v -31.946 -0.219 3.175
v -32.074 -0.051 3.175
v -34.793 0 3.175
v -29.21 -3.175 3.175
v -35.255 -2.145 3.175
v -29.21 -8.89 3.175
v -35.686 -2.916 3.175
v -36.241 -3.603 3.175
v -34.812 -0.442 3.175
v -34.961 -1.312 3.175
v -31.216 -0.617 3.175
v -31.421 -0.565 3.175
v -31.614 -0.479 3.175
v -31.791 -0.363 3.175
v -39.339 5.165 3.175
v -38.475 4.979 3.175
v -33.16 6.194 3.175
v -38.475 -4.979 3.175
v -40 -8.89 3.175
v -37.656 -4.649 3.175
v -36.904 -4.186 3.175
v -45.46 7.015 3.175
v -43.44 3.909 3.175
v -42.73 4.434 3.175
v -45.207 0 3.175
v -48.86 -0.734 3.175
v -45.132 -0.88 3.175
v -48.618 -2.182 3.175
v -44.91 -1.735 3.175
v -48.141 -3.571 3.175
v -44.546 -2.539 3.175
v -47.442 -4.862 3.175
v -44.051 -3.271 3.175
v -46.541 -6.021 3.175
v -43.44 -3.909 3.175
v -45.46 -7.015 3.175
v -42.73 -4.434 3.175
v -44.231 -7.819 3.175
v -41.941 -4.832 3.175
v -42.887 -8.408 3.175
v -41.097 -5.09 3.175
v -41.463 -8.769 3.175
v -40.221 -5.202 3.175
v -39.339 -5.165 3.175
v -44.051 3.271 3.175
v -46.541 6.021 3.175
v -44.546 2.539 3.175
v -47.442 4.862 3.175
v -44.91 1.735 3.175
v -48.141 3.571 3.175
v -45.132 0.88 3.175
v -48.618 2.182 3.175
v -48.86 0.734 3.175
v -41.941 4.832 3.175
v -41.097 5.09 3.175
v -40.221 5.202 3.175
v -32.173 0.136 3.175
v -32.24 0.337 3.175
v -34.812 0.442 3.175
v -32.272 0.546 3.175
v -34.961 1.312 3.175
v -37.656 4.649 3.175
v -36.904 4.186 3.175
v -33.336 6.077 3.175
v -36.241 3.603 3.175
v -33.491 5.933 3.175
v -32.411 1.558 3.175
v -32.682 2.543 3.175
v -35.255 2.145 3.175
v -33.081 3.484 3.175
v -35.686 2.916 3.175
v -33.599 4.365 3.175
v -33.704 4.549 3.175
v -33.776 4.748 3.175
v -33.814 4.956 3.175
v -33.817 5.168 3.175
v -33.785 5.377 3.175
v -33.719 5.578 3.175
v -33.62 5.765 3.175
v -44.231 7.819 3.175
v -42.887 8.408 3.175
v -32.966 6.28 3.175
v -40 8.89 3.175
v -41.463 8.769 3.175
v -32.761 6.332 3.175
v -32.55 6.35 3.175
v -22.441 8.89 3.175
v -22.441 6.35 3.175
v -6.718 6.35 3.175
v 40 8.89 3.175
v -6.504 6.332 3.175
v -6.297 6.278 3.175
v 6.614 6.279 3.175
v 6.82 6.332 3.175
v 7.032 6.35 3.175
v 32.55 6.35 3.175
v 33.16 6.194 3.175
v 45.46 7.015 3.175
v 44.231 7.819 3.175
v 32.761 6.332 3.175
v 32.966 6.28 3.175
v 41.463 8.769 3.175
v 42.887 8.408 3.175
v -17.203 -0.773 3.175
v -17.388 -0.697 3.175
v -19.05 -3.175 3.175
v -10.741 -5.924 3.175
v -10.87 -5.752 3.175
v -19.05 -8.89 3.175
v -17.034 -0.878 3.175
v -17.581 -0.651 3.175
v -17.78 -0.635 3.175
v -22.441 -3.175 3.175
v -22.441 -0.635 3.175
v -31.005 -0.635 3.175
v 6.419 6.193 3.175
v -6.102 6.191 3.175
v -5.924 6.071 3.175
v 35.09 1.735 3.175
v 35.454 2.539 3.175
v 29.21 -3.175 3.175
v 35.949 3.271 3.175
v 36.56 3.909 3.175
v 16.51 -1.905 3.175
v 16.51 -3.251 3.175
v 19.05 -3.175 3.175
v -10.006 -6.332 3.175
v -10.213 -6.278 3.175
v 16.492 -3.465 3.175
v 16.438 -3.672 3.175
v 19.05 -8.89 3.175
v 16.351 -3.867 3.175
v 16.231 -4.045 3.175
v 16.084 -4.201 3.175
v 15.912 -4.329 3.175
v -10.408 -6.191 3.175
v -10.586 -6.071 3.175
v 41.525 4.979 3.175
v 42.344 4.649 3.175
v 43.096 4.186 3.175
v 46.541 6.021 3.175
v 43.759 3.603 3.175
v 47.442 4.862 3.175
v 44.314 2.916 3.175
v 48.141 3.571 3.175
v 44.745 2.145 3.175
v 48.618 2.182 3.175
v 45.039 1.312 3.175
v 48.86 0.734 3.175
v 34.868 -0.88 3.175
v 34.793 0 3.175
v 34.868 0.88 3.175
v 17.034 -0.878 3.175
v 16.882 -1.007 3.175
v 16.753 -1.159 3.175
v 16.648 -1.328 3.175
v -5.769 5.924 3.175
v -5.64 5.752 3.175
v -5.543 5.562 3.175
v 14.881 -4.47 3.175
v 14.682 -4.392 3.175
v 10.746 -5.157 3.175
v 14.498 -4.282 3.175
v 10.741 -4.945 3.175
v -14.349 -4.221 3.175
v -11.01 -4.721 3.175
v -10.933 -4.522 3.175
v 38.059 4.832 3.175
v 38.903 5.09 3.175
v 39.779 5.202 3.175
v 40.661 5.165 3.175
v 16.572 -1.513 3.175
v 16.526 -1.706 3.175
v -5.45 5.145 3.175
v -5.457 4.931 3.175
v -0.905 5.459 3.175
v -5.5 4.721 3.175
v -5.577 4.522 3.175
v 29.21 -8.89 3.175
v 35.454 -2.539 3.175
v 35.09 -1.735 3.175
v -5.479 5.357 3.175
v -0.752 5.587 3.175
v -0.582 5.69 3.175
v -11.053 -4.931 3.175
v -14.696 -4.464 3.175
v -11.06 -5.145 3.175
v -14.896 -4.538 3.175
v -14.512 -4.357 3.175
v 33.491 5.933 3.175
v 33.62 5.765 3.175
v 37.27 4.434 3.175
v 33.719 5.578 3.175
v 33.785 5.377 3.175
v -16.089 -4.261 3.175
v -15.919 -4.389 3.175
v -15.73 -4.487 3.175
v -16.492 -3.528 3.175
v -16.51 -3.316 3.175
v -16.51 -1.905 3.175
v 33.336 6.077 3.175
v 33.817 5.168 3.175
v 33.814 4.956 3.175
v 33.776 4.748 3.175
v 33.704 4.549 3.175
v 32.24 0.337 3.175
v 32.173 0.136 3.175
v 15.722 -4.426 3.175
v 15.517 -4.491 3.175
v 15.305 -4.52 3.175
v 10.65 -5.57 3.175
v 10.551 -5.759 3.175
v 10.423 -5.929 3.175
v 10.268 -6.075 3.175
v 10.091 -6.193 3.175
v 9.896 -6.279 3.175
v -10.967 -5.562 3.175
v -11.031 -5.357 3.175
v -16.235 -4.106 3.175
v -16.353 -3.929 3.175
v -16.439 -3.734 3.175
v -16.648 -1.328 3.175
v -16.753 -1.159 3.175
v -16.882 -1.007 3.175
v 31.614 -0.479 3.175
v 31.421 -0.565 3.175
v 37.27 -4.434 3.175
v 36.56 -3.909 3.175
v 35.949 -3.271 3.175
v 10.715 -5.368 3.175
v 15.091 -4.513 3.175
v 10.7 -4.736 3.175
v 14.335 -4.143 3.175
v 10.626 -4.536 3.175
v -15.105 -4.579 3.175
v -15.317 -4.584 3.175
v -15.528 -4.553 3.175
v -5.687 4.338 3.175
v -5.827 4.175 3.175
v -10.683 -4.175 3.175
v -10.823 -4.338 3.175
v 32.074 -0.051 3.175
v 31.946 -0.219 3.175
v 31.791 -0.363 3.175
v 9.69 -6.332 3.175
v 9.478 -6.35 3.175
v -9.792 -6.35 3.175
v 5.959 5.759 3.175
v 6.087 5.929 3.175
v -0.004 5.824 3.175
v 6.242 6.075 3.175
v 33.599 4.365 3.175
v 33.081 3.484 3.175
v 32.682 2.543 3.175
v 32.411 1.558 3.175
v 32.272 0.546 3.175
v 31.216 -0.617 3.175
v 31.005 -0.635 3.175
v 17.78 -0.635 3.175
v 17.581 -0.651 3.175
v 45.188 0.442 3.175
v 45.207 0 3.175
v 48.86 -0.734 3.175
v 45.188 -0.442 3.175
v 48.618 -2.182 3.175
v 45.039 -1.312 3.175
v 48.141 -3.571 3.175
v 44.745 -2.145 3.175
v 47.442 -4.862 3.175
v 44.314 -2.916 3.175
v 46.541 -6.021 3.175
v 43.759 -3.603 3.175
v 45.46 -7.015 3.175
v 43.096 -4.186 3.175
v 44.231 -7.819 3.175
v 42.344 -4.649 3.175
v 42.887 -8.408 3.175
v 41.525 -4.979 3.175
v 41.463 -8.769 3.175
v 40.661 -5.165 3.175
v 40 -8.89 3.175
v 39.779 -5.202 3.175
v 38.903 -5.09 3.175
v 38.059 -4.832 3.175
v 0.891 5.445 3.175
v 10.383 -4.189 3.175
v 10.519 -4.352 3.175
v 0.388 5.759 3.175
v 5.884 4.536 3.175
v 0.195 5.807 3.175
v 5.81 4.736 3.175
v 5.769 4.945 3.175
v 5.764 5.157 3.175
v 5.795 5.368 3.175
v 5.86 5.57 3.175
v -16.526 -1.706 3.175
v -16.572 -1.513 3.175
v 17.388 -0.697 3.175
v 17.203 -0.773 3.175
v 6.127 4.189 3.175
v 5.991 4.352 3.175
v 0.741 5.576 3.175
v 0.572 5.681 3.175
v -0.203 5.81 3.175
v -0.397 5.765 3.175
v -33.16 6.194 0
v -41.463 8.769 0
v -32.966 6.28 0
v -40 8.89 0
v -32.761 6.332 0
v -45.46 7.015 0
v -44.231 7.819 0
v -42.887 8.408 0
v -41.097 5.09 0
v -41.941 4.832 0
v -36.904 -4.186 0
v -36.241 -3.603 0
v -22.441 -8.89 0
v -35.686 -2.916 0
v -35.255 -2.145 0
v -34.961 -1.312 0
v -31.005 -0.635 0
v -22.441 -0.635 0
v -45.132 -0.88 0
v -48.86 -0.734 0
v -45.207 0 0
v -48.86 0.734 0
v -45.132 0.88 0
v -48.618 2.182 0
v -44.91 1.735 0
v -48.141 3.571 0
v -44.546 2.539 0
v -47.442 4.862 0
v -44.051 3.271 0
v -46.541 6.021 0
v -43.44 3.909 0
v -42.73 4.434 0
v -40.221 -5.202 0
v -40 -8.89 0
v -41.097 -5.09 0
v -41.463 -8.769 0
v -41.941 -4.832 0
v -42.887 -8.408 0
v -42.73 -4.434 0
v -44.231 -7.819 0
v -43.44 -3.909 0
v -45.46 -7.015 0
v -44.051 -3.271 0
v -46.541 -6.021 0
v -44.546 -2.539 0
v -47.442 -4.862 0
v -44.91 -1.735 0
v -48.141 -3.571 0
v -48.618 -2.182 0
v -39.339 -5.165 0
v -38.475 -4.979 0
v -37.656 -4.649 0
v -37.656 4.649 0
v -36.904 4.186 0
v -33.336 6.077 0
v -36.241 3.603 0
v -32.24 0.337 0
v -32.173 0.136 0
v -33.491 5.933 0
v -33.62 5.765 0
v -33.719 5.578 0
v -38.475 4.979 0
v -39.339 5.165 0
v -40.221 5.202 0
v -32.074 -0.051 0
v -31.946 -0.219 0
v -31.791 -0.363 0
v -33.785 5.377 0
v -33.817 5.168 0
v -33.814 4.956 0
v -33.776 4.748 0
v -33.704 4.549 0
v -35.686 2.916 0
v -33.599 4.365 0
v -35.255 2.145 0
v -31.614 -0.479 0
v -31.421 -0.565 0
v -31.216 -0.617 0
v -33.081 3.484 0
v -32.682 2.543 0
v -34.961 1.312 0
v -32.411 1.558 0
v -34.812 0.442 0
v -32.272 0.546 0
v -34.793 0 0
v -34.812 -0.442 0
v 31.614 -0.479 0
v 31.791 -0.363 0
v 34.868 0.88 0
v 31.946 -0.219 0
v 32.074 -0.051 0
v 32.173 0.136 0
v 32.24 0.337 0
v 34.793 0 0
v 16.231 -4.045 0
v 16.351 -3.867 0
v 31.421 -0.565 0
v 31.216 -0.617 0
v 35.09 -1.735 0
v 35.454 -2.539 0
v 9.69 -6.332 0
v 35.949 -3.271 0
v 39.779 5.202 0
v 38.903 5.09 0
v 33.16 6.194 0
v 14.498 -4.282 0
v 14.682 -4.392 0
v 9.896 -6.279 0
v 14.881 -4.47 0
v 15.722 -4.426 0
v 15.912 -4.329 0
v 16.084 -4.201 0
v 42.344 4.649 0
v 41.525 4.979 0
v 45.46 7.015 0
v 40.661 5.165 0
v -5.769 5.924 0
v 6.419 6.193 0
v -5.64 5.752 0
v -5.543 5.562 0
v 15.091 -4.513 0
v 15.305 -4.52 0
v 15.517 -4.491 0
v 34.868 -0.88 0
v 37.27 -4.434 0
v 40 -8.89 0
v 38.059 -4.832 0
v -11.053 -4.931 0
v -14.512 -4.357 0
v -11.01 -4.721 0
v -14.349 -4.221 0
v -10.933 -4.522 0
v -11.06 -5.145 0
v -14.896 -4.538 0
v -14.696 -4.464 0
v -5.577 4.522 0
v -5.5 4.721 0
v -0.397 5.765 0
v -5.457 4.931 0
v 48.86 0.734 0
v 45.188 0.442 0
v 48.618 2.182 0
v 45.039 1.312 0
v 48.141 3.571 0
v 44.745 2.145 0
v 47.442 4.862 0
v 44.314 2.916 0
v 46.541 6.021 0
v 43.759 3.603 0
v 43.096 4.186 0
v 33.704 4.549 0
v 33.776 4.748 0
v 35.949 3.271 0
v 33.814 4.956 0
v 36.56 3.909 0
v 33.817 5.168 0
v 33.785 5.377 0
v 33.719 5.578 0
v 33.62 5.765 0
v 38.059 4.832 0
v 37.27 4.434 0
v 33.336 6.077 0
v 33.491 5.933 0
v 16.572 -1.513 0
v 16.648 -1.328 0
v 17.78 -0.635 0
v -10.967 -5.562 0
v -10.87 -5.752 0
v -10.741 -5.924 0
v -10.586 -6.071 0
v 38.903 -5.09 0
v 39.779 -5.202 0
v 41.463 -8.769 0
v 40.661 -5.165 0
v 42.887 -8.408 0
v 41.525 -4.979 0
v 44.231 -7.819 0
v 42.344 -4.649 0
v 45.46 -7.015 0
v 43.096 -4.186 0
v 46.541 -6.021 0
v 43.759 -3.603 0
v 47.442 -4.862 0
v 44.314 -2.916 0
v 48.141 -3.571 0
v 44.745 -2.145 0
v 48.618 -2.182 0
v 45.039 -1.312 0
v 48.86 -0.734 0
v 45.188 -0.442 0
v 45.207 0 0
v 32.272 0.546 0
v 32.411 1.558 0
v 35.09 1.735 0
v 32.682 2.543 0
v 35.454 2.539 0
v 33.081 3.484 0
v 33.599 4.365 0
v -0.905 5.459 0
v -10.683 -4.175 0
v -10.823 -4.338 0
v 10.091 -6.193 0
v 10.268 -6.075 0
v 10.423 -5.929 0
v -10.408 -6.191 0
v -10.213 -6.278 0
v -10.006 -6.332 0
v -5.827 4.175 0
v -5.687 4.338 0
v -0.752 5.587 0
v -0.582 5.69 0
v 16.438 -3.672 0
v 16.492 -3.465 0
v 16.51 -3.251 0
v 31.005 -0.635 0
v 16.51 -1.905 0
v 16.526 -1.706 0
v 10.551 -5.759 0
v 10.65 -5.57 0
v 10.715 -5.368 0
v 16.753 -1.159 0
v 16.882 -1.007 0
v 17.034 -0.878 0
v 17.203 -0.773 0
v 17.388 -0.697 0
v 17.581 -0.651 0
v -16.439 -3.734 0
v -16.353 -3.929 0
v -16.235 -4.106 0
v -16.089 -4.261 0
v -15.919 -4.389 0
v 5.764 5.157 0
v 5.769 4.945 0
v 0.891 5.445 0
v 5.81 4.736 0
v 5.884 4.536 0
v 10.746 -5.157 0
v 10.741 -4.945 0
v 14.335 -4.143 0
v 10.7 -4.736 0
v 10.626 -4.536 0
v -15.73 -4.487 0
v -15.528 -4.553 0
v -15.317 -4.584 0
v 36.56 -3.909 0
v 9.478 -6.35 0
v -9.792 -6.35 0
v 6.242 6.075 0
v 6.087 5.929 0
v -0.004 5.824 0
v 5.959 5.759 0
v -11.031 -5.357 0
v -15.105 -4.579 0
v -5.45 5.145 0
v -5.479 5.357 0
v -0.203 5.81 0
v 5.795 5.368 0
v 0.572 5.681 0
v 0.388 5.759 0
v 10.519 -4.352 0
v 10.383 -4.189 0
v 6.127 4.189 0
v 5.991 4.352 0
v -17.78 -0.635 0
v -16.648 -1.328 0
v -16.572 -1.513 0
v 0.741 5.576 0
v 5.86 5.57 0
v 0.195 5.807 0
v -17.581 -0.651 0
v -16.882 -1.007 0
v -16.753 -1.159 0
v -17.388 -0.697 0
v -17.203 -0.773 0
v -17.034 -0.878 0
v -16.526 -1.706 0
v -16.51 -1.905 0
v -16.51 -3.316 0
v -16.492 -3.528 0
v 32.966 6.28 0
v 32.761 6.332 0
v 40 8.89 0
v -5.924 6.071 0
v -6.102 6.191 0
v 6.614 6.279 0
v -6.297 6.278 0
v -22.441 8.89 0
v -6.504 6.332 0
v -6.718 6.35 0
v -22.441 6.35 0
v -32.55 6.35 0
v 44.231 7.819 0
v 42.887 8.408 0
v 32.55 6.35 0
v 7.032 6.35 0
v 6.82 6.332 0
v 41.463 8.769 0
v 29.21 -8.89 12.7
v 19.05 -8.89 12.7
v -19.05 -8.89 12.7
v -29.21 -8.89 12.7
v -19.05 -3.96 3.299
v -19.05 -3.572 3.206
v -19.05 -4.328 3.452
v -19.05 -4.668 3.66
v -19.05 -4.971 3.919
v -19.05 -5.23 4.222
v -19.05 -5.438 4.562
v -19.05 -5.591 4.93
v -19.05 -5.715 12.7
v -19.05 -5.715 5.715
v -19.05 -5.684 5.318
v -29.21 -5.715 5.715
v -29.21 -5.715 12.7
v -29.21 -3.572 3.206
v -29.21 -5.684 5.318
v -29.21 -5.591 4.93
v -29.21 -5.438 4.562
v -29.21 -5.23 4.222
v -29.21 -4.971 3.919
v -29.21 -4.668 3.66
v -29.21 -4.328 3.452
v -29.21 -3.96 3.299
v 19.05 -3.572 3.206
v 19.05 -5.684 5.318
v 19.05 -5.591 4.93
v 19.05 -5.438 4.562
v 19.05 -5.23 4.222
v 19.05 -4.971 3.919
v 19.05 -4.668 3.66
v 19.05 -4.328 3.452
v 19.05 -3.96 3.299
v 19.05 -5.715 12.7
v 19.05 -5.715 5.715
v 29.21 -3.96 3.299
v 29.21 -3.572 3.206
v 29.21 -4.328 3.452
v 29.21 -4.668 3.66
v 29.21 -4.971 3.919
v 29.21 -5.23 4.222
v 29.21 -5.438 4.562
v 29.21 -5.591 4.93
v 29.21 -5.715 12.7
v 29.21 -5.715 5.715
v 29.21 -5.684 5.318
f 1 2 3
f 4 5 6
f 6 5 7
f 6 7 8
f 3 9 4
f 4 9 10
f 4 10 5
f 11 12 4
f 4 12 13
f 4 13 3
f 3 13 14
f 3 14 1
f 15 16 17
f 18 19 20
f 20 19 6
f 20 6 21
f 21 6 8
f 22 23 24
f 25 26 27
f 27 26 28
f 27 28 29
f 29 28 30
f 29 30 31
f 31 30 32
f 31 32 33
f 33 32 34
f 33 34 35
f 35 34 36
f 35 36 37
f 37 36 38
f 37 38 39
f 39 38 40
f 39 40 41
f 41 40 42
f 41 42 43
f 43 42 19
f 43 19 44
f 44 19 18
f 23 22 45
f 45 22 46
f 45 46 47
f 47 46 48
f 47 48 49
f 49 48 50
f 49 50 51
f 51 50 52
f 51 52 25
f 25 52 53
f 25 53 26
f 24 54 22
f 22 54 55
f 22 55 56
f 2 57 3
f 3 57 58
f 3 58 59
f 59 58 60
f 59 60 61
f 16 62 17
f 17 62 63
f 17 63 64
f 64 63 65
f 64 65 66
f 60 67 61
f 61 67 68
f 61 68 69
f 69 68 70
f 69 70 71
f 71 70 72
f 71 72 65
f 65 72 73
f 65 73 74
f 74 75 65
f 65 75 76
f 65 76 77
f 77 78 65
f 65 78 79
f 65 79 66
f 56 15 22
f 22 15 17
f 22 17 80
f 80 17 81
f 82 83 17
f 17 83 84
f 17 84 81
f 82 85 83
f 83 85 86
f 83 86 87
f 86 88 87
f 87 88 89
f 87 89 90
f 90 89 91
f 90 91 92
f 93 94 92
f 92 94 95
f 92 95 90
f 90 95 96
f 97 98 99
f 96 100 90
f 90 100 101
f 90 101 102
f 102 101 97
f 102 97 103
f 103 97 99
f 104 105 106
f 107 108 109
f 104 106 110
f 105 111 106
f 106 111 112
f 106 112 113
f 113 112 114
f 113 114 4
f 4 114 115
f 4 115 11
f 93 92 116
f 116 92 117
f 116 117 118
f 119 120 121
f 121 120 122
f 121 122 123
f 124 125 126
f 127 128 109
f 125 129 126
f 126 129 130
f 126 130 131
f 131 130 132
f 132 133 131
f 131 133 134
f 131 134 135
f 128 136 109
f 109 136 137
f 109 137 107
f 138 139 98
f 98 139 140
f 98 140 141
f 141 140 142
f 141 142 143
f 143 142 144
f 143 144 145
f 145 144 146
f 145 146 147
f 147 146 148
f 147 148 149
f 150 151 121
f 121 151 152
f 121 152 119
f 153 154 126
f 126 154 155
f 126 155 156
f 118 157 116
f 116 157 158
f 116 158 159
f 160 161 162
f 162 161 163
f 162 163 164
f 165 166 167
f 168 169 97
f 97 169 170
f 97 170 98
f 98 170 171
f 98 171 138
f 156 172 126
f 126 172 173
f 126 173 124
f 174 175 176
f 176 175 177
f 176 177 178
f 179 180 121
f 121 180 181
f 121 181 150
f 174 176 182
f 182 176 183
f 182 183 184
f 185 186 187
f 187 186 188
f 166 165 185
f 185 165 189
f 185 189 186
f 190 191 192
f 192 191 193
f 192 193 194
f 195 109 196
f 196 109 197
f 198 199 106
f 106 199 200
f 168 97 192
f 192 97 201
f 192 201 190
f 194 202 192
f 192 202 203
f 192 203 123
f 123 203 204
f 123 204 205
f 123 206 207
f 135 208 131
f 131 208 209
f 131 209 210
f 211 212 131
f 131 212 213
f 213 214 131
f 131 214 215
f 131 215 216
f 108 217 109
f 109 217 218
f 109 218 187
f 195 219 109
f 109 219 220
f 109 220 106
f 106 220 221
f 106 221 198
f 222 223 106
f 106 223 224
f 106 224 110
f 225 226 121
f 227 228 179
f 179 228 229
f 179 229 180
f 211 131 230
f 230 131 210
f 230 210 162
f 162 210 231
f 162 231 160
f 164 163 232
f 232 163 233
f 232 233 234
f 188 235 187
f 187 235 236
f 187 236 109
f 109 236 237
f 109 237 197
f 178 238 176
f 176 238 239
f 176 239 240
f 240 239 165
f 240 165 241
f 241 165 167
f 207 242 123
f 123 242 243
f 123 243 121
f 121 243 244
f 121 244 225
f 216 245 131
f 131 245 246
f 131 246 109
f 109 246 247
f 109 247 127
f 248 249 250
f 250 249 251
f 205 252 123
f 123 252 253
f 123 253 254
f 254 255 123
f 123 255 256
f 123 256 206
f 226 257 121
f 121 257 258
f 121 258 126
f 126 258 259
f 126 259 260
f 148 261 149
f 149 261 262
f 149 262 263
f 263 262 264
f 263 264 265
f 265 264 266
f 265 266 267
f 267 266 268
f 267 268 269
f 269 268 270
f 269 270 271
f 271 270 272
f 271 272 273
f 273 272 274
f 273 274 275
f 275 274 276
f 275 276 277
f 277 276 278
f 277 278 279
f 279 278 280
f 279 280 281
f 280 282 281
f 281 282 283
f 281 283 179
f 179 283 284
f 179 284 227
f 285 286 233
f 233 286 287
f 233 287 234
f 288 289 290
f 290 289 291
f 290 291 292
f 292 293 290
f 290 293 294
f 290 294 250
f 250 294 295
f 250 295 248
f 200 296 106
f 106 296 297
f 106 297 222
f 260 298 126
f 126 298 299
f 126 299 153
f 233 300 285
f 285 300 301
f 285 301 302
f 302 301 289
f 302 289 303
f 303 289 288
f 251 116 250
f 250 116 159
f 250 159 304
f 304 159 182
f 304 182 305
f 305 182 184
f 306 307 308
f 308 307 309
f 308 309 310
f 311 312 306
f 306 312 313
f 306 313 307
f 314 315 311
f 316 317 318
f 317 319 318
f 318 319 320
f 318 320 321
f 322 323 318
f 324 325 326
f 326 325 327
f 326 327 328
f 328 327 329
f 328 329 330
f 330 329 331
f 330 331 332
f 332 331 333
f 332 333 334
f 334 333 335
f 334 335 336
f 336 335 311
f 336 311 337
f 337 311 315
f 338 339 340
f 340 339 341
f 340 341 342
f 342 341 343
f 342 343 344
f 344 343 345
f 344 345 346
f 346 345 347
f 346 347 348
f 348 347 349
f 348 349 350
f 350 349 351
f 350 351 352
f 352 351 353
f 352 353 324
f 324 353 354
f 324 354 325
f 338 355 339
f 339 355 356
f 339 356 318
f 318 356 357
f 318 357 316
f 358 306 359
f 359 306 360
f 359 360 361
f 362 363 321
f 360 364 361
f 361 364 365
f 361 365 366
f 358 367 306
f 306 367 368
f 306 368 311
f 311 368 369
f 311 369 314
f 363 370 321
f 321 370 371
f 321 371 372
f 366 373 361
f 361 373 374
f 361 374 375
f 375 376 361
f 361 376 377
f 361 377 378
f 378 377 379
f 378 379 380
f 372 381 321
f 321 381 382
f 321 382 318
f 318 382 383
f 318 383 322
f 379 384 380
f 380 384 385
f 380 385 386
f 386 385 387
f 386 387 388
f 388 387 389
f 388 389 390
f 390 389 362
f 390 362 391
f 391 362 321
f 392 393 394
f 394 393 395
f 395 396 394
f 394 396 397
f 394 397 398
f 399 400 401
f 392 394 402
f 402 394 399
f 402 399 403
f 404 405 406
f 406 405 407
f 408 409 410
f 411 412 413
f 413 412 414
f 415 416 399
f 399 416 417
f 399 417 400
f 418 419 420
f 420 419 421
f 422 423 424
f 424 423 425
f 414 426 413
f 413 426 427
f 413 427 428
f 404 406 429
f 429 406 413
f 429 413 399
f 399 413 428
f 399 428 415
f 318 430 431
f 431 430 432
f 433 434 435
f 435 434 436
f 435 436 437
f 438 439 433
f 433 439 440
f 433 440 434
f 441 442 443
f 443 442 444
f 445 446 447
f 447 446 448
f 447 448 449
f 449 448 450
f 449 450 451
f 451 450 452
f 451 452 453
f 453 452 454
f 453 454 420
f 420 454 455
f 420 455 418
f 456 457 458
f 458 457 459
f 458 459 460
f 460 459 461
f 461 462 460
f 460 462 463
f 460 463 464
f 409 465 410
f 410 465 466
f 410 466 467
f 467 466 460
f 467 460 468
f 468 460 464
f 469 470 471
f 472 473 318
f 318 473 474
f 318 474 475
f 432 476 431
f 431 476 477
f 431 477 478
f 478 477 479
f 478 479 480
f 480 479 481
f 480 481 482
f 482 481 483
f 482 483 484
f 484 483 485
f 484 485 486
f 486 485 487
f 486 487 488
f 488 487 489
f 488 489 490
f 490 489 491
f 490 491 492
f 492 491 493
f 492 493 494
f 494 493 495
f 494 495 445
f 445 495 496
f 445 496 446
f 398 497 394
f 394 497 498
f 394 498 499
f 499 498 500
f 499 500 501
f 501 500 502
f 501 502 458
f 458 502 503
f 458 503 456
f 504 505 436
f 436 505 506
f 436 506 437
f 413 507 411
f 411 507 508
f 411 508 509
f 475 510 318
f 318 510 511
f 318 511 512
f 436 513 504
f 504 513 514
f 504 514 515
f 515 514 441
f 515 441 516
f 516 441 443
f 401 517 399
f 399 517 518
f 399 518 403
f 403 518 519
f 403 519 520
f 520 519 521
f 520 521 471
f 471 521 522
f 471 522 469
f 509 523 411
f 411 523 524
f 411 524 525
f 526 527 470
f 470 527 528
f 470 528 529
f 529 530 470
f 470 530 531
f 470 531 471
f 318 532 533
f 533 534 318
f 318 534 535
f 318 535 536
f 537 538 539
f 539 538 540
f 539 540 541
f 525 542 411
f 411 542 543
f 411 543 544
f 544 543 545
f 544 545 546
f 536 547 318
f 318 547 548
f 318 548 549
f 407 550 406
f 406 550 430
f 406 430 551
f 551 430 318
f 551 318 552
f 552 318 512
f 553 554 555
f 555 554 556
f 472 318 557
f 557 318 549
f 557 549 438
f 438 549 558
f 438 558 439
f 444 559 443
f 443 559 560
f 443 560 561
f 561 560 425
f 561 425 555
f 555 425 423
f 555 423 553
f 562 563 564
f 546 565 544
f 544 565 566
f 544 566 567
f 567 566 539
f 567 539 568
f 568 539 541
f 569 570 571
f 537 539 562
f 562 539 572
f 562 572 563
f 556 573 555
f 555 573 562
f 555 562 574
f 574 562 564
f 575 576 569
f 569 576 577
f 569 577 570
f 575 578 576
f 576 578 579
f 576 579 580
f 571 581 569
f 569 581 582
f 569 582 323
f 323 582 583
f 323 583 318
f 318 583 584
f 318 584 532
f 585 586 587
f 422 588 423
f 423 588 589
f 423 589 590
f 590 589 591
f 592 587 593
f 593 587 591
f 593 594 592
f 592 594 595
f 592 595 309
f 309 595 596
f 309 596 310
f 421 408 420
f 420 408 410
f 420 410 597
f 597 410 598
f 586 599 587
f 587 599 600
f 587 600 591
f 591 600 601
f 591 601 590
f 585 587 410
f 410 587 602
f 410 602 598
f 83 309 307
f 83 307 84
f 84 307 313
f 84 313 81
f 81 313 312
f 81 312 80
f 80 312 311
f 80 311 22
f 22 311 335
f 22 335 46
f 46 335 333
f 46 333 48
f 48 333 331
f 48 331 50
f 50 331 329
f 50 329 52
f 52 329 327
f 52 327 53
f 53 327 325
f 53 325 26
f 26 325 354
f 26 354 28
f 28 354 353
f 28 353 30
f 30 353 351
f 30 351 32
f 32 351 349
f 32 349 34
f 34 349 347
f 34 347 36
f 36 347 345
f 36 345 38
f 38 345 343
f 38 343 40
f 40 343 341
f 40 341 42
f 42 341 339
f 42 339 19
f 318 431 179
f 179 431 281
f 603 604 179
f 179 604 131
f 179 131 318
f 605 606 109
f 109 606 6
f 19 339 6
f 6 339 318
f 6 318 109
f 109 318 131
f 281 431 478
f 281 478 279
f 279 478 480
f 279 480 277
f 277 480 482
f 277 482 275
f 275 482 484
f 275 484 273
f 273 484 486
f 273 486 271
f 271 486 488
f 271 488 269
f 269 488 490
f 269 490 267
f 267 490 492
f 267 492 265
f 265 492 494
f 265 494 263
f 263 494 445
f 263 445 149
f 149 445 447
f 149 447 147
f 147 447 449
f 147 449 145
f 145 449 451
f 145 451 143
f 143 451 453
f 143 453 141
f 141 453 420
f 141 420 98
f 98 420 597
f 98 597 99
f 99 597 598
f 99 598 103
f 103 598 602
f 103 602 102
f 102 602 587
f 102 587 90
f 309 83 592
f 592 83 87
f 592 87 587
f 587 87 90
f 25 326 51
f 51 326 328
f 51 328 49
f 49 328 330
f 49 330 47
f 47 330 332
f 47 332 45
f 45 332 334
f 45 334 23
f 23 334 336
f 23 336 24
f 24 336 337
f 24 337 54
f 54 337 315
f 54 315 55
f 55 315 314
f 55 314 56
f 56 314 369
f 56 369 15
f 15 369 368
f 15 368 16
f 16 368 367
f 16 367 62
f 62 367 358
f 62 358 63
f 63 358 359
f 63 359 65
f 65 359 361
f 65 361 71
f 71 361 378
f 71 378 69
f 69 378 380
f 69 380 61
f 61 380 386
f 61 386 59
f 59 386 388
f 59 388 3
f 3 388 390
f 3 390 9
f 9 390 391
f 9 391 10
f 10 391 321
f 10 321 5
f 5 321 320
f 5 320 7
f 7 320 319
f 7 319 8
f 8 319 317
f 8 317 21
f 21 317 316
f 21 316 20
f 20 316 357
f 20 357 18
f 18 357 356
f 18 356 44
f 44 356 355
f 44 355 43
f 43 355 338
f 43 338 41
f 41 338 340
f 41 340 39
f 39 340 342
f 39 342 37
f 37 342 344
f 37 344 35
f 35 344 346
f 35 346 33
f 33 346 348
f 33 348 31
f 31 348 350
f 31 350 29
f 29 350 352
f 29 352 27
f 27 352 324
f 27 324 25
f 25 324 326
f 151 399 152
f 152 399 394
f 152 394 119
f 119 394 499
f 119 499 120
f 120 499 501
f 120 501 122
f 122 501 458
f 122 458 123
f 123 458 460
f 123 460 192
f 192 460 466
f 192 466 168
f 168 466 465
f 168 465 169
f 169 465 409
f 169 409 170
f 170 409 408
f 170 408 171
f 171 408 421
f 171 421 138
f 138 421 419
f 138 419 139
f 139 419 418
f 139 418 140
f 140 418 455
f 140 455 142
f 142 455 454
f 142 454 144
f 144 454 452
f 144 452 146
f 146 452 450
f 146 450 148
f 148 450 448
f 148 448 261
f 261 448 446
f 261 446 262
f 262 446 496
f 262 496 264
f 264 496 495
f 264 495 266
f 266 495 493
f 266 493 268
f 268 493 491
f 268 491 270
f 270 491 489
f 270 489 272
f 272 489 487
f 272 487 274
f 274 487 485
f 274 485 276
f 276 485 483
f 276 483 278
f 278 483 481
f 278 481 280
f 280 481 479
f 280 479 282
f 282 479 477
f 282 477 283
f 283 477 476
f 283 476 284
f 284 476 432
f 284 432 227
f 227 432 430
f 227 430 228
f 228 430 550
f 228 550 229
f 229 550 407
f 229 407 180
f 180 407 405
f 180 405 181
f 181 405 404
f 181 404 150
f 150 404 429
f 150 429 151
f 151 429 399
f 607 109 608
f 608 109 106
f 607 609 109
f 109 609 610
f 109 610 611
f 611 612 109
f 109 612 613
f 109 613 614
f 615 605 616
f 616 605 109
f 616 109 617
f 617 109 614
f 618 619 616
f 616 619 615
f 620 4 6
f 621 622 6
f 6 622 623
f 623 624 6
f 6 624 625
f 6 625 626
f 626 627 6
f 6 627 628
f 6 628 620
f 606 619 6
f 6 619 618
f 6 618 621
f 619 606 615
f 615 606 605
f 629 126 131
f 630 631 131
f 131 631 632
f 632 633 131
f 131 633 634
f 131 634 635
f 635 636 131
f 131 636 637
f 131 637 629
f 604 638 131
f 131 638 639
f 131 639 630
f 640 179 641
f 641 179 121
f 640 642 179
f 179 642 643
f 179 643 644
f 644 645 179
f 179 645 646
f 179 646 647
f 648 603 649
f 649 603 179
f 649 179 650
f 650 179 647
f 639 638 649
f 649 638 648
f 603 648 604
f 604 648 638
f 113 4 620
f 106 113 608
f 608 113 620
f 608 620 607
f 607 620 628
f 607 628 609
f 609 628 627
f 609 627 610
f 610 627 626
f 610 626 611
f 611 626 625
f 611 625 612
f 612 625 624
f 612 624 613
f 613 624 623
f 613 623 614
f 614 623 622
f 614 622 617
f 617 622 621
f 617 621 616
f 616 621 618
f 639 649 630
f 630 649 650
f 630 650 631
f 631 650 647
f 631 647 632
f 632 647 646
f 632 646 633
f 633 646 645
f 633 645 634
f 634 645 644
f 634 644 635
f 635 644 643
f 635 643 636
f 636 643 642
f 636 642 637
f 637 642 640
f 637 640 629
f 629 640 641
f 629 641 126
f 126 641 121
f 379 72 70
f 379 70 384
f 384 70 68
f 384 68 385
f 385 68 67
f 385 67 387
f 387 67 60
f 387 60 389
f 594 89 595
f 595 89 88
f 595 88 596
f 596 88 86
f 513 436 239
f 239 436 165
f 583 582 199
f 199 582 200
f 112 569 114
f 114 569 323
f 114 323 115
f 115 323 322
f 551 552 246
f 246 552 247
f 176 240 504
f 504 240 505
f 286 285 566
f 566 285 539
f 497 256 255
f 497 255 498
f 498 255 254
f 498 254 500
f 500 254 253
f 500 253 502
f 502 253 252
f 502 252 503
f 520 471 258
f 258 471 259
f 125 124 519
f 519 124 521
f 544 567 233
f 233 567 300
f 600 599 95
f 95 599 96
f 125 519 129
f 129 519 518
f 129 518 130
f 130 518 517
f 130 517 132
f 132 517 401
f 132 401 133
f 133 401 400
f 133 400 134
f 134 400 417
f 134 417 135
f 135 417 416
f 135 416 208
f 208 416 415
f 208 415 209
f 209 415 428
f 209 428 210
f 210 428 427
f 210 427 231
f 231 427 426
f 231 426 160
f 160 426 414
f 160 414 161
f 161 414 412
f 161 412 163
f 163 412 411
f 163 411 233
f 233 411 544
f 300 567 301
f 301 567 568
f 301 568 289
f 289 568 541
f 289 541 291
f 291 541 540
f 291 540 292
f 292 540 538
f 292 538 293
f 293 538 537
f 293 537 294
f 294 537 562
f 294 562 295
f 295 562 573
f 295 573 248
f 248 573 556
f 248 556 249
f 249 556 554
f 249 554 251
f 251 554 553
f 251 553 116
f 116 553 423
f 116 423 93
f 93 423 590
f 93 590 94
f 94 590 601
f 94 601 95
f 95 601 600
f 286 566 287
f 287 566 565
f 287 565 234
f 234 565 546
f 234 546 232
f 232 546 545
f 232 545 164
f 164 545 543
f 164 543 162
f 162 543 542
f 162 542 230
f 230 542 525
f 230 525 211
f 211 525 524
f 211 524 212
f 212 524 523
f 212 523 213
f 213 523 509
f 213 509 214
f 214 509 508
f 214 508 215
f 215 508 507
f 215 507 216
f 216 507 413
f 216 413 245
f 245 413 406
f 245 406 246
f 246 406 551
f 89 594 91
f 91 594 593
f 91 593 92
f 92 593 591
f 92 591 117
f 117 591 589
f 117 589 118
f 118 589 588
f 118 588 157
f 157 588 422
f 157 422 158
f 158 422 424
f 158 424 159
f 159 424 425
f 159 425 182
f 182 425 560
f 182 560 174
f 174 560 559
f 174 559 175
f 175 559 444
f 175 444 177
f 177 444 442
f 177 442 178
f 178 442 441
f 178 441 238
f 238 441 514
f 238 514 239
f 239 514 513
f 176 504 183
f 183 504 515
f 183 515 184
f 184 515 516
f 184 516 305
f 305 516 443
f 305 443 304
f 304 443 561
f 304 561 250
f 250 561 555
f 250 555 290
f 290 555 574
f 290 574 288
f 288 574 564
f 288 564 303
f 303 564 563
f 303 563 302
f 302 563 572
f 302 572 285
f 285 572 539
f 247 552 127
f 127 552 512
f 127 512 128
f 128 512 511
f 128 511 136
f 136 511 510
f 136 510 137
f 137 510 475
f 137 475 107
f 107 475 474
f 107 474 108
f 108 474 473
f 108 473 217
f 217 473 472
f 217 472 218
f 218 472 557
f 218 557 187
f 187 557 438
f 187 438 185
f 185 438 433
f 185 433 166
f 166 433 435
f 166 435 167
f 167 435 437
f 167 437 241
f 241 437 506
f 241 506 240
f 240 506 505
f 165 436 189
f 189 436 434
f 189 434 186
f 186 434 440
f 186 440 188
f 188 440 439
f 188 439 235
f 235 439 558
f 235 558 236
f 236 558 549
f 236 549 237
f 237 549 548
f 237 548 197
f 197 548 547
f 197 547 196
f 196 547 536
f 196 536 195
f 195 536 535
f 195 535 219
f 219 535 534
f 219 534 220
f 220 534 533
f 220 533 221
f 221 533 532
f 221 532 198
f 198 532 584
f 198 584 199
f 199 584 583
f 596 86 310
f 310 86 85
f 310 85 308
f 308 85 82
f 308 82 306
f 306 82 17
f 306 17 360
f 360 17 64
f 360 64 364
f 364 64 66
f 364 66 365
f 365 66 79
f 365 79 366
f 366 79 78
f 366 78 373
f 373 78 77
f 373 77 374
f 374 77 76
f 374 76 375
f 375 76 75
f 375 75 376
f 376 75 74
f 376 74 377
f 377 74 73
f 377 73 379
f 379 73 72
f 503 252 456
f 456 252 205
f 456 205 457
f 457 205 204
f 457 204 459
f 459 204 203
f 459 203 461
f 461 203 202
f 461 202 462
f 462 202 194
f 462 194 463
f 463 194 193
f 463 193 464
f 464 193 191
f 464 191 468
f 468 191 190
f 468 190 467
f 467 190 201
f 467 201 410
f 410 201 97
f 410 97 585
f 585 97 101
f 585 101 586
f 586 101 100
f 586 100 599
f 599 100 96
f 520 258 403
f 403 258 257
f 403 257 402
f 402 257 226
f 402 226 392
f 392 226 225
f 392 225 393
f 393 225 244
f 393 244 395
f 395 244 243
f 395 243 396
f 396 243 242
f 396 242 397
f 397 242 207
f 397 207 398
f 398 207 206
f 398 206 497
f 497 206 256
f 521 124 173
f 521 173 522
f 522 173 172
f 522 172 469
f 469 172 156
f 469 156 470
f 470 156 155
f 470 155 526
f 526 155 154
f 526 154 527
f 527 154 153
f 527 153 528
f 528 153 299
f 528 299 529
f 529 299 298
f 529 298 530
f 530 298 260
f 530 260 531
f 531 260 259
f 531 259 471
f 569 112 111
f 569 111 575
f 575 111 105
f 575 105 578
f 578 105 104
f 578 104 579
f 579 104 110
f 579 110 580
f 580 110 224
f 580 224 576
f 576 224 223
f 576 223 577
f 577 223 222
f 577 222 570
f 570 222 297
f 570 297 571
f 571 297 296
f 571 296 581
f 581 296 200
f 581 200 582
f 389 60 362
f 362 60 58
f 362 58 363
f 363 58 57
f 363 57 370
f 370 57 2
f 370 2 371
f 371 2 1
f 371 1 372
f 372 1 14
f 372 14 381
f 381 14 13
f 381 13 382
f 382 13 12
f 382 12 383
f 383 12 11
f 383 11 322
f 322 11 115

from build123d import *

# Parameters (mm, degrees)
SKETCH1_R           = 5.207
BOSS_EXTRUDE1_DEPTH = 3.175
SKETCH2_W           = 10.16
SKETCH2_H           = 3.175
BOSS_EXTRUDE2_DEPTH = 12.7
FILLET1_R           = 2.54
CUT_EXTRUDE1_DEPTH  = 51.596342012
FILLET2_R           = 1.27


with BuildPart() as part:
    # Sketch1 → Boss-Extrude1 (new body)
    with BuildSketch(Plane.XY):
        with BuildLine():
            Line((-40, 8.89), (40, 8.89))
            ThreePointArc((40, 8.89), (48.89, 0), (40, -8.89))
            Line((40, -8.89), (-40, -8.89))
            ThreePointArc((-40, -8.89), (-48.89, 0), (-40, 8.89))
        make_face()
        with Locations((-40, 0)):
            Circle(SKETCH1_R, mode=Mode.SUBTRACT)
        with Locations((40, 0)):
            Circle(SKETCH1_R, mode=Mode.SUBTRACT)
    extrude(amount=BOSS_EXTRUDE1_DEPTH)

    # Sketch2 → Boss-Extrude2 (add)
    with BuildSketch(Plane.XY):
        with Locations((24.13, -7.3025)):
            Rectangle(SKETCH2_W, SKETCH2_H)
        with Locations((-24.13, -7.3025)):
            Rectangle(SKETCH2_W, SKETCH2_H)
    extrude(amount=BOSS_EXTRUDE2_DEPTH)

    # Fillet1
    fillet1_edges = [part.edges().sort_by_distance(p)[0] for p in [
        (-24.13, -5.715, 3.175),
        (24.13, -5.715, 3.175),
    ]]
    fillet(fillet1_edges, radius=FILLET1_R)

    # Sketch3 → Cut-Extrude1 (cut, through all)
    with BuildSketch(Plane.XY.offset(3.175)):
        with BuildLine():
            Line((-31.75, -0.635), (-32.27906845, -0.635))
            ThreePointArc((-32.27906845, -0.635), (-32.98887591, 3.295473864), (-35.562263077, 6.35))
            Line((-35.562263077, 6.35), (-3.619187949, 6.35))
            Line((-3.619187949, 6.35), (-16.51, -6.35))
            Line((-16.51, -6.35), (-16.51, -0.635))
            Line((-16.51, -0.635), (-31.75, -0.635))
        make_face()
        with BuildLine():
            Line((31.75, -0.635), (32.27906845, -0.635))
            ThreePointArc((32.27906845, -0.635), (32.98887591, 3.295473864), (35.562263077, 6.35))
            Line((35.562263077, 6.35), (3.997987617, 6.35))
            Line((3.997987617, 6.35), (16.51, -6.35))
            Line((16.51, -6.35), (16.51, -0.635))
            Line((16.51, -0.635), (31.75, -0.635))
        make_face()
        Polygon((-12.890812051, -6.35), (0, 6.35), (12.512012383, -6.35), align=None)
    extrude(amount=-CUT_EXTRUDE1_DEPTH, mode=Mode.SUBTRACT)

    # Fillet2
    fillet2_edges = [part.edges().sort_by_distance(p)[0] for p in [
        (35.562263077, 6.35, 1.5875),
        (32.27906845, -0.635, 1.5875),
        (16.51, -0.635, 1.5875),
        (16.51, -6.35, 1.5875),
        (3.997987617, 6.35, 1.5875),
        (12.512012383, -6.35, 1.5875),
        (-12.890812051, -6.35, 1.5875),
        (0, 6.35, 1.5875),
        (-32.27906845, -0.635, 1.5875),
        (-35.562263077, 6.35, 1.5875),
        (-3.619187949, 6.35, 1.5875),
        (-16.51, -6.35, 1.5875),
        (-16.51, -0.635, 1.5875),
    ]]
    fillet(fillet2_edges, radius=FILLET2_R)


solid = part.part
